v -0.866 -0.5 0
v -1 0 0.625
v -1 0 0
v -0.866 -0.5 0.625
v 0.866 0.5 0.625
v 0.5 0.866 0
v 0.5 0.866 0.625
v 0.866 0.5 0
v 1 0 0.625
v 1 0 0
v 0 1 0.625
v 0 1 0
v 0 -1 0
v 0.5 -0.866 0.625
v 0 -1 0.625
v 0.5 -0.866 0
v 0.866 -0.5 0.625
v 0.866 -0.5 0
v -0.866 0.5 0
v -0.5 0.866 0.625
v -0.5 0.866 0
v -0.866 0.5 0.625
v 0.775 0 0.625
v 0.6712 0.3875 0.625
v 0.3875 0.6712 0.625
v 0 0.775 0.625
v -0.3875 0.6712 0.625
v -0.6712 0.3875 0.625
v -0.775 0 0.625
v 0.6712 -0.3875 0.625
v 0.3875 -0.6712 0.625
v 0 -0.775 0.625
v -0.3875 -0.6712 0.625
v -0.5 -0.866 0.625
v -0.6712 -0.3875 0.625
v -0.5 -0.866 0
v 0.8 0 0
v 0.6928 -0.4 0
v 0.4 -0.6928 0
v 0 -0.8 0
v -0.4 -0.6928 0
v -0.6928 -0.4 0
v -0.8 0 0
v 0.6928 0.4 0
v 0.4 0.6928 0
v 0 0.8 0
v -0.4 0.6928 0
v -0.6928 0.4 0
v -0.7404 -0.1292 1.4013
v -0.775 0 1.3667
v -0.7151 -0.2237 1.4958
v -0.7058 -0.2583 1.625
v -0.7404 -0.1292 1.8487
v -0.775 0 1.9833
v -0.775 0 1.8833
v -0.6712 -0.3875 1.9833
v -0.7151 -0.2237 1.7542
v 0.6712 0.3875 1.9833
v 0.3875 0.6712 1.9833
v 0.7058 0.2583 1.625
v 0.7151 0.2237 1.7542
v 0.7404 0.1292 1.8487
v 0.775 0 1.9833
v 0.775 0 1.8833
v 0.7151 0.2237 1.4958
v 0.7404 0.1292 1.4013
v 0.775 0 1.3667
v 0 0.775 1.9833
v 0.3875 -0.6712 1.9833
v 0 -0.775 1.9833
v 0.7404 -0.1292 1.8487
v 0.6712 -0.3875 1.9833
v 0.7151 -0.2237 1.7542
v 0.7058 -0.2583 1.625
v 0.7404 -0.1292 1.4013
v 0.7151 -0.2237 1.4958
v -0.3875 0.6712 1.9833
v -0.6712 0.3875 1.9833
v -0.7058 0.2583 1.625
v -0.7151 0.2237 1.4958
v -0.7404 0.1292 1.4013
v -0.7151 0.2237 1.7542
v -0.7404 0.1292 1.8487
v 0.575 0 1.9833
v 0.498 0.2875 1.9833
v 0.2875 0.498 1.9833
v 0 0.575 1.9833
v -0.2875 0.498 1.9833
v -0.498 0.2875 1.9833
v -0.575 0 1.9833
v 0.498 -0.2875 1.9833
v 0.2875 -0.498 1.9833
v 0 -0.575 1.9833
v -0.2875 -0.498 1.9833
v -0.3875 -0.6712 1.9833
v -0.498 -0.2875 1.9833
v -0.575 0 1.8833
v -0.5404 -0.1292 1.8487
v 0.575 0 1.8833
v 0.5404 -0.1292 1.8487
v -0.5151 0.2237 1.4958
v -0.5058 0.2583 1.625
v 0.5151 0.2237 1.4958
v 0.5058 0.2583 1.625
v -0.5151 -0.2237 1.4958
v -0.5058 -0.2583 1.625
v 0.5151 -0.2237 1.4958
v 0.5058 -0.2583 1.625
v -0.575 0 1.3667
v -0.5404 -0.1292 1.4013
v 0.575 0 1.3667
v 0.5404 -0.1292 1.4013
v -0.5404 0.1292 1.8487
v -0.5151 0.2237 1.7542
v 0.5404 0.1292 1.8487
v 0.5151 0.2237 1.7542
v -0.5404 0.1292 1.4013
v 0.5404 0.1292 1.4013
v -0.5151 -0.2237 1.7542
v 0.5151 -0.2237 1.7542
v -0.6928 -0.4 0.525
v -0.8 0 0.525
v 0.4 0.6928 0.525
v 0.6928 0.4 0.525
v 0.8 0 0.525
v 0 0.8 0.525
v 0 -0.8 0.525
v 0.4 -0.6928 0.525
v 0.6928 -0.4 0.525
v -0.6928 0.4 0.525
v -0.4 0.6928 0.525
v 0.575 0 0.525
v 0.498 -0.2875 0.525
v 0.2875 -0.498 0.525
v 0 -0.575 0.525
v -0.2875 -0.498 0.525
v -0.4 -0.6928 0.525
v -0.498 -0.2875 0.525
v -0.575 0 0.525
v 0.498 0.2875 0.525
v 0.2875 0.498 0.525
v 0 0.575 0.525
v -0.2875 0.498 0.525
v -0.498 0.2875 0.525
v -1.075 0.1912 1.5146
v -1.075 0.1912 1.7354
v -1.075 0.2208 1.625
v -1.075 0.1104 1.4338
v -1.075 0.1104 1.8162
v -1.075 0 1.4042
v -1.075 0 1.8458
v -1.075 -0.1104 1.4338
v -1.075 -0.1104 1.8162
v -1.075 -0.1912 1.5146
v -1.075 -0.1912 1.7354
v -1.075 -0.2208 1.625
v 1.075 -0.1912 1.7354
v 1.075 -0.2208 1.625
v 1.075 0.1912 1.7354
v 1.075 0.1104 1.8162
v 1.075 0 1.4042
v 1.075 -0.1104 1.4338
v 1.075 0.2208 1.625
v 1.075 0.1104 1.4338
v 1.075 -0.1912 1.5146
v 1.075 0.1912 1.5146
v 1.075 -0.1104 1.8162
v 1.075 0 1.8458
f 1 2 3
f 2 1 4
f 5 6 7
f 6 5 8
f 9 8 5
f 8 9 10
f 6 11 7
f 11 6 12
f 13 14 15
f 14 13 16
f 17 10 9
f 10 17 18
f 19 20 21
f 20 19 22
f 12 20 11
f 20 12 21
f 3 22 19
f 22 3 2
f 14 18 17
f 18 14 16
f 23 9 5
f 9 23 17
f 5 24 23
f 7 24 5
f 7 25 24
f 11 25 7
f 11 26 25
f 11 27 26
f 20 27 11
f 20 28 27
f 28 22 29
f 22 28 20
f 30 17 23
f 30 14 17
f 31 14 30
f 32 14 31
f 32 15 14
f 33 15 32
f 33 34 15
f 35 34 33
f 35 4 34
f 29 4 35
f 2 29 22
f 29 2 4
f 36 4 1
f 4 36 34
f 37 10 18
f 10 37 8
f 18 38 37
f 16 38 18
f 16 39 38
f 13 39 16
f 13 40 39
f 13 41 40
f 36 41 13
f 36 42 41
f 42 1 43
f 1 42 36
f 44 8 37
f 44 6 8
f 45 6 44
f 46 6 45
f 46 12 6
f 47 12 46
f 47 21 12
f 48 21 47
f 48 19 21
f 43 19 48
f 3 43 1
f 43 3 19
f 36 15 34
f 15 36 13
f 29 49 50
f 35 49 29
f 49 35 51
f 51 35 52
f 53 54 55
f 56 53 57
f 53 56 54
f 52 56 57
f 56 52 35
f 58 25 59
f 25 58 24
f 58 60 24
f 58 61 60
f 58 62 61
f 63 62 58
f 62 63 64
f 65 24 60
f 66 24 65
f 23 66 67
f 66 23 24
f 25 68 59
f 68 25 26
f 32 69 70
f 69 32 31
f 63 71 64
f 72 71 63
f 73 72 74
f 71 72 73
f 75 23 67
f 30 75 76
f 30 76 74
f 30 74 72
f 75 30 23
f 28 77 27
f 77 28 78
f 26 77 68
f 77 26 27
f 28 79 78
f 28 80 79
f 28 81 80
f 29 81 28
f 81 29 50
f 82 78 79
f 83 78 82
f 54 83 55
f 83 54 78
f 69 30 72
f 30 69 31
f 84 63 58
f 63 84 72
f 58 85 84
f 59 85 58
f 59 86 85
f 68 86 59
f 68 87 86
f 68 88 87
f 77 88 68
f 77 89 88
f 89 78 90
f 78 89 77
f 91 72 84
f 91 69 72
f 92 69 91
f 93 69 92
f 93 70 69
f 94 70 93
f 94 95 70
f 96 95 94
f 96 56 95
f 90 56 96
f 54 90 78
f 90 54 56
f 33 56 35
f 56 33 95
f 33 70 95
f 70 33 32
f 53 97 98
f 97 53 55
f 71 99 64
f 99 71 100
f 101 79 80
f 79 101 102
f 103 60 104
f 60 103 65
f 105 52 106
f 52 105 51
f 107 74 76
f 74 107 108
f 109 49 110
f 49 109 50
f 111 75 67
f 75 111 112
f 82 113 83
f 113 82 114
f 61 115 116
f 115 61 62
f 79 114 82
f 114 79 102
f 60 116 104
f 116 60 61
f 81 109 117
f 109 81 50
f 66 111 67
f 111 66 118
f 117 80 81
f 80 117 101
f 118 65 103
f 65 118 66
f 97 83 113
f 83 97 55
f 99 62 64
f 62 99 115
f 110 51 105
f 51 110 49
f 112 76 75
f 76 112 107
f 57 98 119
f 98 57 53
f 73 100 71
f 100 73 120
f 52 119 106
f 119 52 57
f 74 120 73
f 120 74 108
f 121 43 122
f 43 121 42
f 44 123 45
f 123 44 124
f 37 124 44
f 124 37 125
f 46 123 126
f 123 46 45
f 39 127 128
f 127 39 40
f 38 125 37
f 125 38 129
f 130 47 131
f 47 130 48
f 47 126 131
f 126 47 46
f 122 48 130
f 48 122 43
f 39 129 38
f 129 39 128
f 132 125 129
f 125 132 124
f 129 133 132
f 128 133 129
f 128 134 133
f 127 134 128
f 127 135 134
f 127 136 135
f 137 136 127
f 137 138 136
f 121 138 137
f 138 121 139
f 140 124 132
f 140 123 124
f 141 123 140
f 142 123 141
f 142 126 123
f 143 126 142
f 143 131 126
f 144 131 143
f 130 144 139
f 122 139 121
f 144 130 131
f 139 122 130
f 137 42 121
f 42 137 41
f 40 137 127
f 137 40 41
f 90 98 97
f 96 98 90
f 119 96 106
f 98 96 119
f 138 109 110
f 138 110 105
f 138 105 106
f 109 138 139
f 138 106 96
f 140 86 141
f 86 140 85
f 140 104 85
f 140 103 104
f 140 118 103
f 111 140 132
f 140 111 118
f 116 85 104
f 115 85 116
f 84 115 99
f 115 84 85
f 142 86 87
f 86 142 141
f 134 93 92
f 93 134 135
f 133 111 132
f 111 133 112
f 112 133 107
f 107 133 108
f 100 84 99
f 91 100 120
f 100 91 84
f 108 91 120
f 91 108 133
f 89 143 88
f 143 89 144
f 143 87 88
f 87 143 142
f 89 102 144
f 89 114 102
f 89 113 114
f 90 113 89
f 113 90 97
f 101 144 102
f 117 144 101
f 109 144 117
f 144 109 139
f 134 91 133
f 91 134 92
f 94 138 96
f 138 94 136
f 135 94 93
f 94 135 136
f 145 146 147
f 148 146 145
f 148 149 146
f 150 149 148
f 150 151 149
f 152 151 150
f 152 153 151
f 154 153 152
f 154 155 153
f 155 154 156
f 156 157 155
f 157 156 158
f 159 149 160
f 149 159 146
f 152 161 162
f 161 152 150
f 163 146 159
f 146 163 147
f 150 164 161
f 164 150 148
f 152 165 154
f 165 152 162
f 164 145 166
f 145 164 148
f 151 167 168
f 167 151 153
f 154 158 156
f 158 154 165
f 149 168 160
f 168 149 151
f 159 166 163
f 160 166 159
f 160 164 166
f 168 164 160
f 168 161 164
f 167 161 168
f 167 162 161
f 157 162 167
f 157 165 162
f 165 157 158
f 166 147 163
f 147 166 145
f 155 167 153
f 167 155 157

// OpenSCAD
tolerance=0.075;
hole_radius=0.05;
grid_hole_radius=0.05;
outer_radius=1;
thickness=0.2;
hole_attach_height=0.05;
attach_thickness=0.1;
bottom_rotation_height=1.625;
top_rotation_height=1.35;
next_hole_radius=0.05;
next_hole_attach_height=0.05;
next_inner=0.8;
max_turn=90.0;
min_turn=90.0;
hole_twist=90.0;

//parameters that don't have to be defined explicitly
eps = tolerance/100;
inner_radius = outer_radius - thickness;
axle_offset = attach_thickness;
bottom_joint_attach_radius = outer_radius - hole_attach_height - grid_hole_radius*2 - tolerance;
fn = 12;
fnh = 6;

//solve for b = axle height
max_turn_b = outer_radius / tan((180 - max_turn)/2);
min_turn_b = outer_radius / tan((180 - min_turn)/2);
axle_radius = bottom_joint_attach_radius/3;

grid_hole_height = hole_radius*2 + hole_attach_height * 2;
bottom_joint_grid_clearance = bottom_rotation_height - (hole_attach_height*2 + hole_radius*2 + grid_hole_height + max_turn_b + attach_thickness);

module angled_cylinder(angle_deg_y, _h, _r, angle_deg_x = 0) {
    rotate([angle_deg_x, angle_deg_y, 0]) { // Rotate the cylinder 
            cylinder(h = _h, r = _r, center = true, $fn = fnh);
        }
}

module hole(_h) {
    cylinder(h = _h, r = grid_hole_radius, $fn = fnh);
}

//makes circle of holes
module circular_grid(_h, _r, _n) {
    for (i = [0:_n-1]) {
        angle = i * 360 / _n;
        x_pos = _r * cos(angle);
        y_pos = _r * sin(angle);
        translate([x_pos, y_pos, -eps]) {
            hole(_h);
        }
    }
}

//makes grid of holes
module hole_grid(hole_height, grid_h) {
    translate([0,0,hole_height]) {
        difference() {
            //cylinder
            cylinder(h = grid_h, r = (inner_radius + outer_radius)/2, 
                center=false, $fn = fn);
            //holes
            for (i = [0 : grid_hole_radius * 2 + hole_attach_height : inner_radius - grid_hole_radius * 2]) {
                circular_grid(grid_h + eps*2, i, ceil(6.28*i/(grid_hole_radius*4)));
            }
            
        } 
    }
}

module joint_bottom() {
    //make grid of holes
    grid_hole_height = hole_radius*2 + hole_attach_height * 2;
    //hole_grid(grid_hole_height, grid_hole_radius);
    
    bottom_joint_attach_height = max_turn_b + axle_radius + axle_offset;
   
    operating_height = hole_attach_height*2 + attach_thickness + hole_radius*2 + grid_hole_height + bottom_joint_grid_clearance;
    difference() {
        //bottom joint
        union() {
            cylinder(h=operating_height, r=outer_radius, $fn = fn);
            
            translate([0,0,operating_height]) {
                cylinder(h=bottom_joint_attach_height,r=bottom_joint_attach_radius,$fn=fn);
                //enforce min turn
                difference() {
                    cylinder(h=max_turn_b - min_turn_b,r=outer_radius,$fn=fn);
                    translate([-outer_radius,-outer_radius*2,-eps/2])
                    cube([outer_radius*2 + eps,outer_radius*2 + axle_radius + axle_offset + tolerance + eps,max_turn_b - min_turn_b + eps]);
                    
                    translate([-outer_radius,0,max_turn_b])
                    rotate([-(90+min_turn),0,0])
                    translate([0,-max_turn_b + eps/2,-axle_radius-axle_offset])
                    cube([outer_radius*2,max_turn_b - min_turn_b + eps,outer_radius*2+ axle_radius + axle_offset], center=false);
                }
                
                
            }
        }
        
        //hole for axle
        translate([0,0,operating_height + max_turn_b])
        rotate([0,90,0])
        cylinder(h=outer_radius*2,r=axle_radius,center=true,$fn=fn);
        
        //shelling
        cylinder(h=operating_height - attach_thickness, r=inner_radius, center = false, $fn = fn);
        
        cylinder(h=operating_height + bottom_joint_attach_height + eps, r =          bottom_joint_attach_radius - thickness, center = false, $fn = fn);
        //shell tolerance
        cylinder(h=eps, r=inner_radius, center=true,$fn = fn);
        
        //screw holes
//        translate([0,0,hole_radius + hole_attach_height]) 
//        rotate([0,0,hole_twist]) {
//            angled_cylinder(0, (outer_radius*1.5 + eps) * 2,  hole_radius, 90);
//            angled_cylinder(90, (outer_radius*1.5 + eps) * 2, hole_radius, 0);
//        } 
        
        //holes for routing strings
//        translate([0,-inner_radius + thickness,-hole_attach_height - grid_hole_radius + operating_height])
//        rotate([90,0,0])
//        cylinder(h=thickness + inner_radius + eps, r=grid_hole_radius,$fn=fn);
//        
//        translate([0,outer_radius,-hole_attach_height - grid_hole_radius + operating_height + max_turn_b - min_turn_b])
//        rotate([90,0,0])
//        cylinder(h=thickness + inner_radius + eps, r=grid_hole_radius,$fn=fn);
//        
//        translate([0,bottom_joint_attach_radius + hole_attach_height + grid_hole_radius,operating_height - attach_thickness - eps/2])
//        cylinder(h=attach_thickness + max_turn_b - min_turn_b - hole_attach_height + eps, r=grid_hole_radius,$fn=fn);
    }
}

module axle() {
    cylinder(h=outer_radius*2 + tolerance*2, r = axle_radius - tolerance/2, $fn = fn);
}

joint_bottom();

rotate([0,90,0])
translate([-bottom_rotation_height,0,-outer_radius - tolerance])
axle();
